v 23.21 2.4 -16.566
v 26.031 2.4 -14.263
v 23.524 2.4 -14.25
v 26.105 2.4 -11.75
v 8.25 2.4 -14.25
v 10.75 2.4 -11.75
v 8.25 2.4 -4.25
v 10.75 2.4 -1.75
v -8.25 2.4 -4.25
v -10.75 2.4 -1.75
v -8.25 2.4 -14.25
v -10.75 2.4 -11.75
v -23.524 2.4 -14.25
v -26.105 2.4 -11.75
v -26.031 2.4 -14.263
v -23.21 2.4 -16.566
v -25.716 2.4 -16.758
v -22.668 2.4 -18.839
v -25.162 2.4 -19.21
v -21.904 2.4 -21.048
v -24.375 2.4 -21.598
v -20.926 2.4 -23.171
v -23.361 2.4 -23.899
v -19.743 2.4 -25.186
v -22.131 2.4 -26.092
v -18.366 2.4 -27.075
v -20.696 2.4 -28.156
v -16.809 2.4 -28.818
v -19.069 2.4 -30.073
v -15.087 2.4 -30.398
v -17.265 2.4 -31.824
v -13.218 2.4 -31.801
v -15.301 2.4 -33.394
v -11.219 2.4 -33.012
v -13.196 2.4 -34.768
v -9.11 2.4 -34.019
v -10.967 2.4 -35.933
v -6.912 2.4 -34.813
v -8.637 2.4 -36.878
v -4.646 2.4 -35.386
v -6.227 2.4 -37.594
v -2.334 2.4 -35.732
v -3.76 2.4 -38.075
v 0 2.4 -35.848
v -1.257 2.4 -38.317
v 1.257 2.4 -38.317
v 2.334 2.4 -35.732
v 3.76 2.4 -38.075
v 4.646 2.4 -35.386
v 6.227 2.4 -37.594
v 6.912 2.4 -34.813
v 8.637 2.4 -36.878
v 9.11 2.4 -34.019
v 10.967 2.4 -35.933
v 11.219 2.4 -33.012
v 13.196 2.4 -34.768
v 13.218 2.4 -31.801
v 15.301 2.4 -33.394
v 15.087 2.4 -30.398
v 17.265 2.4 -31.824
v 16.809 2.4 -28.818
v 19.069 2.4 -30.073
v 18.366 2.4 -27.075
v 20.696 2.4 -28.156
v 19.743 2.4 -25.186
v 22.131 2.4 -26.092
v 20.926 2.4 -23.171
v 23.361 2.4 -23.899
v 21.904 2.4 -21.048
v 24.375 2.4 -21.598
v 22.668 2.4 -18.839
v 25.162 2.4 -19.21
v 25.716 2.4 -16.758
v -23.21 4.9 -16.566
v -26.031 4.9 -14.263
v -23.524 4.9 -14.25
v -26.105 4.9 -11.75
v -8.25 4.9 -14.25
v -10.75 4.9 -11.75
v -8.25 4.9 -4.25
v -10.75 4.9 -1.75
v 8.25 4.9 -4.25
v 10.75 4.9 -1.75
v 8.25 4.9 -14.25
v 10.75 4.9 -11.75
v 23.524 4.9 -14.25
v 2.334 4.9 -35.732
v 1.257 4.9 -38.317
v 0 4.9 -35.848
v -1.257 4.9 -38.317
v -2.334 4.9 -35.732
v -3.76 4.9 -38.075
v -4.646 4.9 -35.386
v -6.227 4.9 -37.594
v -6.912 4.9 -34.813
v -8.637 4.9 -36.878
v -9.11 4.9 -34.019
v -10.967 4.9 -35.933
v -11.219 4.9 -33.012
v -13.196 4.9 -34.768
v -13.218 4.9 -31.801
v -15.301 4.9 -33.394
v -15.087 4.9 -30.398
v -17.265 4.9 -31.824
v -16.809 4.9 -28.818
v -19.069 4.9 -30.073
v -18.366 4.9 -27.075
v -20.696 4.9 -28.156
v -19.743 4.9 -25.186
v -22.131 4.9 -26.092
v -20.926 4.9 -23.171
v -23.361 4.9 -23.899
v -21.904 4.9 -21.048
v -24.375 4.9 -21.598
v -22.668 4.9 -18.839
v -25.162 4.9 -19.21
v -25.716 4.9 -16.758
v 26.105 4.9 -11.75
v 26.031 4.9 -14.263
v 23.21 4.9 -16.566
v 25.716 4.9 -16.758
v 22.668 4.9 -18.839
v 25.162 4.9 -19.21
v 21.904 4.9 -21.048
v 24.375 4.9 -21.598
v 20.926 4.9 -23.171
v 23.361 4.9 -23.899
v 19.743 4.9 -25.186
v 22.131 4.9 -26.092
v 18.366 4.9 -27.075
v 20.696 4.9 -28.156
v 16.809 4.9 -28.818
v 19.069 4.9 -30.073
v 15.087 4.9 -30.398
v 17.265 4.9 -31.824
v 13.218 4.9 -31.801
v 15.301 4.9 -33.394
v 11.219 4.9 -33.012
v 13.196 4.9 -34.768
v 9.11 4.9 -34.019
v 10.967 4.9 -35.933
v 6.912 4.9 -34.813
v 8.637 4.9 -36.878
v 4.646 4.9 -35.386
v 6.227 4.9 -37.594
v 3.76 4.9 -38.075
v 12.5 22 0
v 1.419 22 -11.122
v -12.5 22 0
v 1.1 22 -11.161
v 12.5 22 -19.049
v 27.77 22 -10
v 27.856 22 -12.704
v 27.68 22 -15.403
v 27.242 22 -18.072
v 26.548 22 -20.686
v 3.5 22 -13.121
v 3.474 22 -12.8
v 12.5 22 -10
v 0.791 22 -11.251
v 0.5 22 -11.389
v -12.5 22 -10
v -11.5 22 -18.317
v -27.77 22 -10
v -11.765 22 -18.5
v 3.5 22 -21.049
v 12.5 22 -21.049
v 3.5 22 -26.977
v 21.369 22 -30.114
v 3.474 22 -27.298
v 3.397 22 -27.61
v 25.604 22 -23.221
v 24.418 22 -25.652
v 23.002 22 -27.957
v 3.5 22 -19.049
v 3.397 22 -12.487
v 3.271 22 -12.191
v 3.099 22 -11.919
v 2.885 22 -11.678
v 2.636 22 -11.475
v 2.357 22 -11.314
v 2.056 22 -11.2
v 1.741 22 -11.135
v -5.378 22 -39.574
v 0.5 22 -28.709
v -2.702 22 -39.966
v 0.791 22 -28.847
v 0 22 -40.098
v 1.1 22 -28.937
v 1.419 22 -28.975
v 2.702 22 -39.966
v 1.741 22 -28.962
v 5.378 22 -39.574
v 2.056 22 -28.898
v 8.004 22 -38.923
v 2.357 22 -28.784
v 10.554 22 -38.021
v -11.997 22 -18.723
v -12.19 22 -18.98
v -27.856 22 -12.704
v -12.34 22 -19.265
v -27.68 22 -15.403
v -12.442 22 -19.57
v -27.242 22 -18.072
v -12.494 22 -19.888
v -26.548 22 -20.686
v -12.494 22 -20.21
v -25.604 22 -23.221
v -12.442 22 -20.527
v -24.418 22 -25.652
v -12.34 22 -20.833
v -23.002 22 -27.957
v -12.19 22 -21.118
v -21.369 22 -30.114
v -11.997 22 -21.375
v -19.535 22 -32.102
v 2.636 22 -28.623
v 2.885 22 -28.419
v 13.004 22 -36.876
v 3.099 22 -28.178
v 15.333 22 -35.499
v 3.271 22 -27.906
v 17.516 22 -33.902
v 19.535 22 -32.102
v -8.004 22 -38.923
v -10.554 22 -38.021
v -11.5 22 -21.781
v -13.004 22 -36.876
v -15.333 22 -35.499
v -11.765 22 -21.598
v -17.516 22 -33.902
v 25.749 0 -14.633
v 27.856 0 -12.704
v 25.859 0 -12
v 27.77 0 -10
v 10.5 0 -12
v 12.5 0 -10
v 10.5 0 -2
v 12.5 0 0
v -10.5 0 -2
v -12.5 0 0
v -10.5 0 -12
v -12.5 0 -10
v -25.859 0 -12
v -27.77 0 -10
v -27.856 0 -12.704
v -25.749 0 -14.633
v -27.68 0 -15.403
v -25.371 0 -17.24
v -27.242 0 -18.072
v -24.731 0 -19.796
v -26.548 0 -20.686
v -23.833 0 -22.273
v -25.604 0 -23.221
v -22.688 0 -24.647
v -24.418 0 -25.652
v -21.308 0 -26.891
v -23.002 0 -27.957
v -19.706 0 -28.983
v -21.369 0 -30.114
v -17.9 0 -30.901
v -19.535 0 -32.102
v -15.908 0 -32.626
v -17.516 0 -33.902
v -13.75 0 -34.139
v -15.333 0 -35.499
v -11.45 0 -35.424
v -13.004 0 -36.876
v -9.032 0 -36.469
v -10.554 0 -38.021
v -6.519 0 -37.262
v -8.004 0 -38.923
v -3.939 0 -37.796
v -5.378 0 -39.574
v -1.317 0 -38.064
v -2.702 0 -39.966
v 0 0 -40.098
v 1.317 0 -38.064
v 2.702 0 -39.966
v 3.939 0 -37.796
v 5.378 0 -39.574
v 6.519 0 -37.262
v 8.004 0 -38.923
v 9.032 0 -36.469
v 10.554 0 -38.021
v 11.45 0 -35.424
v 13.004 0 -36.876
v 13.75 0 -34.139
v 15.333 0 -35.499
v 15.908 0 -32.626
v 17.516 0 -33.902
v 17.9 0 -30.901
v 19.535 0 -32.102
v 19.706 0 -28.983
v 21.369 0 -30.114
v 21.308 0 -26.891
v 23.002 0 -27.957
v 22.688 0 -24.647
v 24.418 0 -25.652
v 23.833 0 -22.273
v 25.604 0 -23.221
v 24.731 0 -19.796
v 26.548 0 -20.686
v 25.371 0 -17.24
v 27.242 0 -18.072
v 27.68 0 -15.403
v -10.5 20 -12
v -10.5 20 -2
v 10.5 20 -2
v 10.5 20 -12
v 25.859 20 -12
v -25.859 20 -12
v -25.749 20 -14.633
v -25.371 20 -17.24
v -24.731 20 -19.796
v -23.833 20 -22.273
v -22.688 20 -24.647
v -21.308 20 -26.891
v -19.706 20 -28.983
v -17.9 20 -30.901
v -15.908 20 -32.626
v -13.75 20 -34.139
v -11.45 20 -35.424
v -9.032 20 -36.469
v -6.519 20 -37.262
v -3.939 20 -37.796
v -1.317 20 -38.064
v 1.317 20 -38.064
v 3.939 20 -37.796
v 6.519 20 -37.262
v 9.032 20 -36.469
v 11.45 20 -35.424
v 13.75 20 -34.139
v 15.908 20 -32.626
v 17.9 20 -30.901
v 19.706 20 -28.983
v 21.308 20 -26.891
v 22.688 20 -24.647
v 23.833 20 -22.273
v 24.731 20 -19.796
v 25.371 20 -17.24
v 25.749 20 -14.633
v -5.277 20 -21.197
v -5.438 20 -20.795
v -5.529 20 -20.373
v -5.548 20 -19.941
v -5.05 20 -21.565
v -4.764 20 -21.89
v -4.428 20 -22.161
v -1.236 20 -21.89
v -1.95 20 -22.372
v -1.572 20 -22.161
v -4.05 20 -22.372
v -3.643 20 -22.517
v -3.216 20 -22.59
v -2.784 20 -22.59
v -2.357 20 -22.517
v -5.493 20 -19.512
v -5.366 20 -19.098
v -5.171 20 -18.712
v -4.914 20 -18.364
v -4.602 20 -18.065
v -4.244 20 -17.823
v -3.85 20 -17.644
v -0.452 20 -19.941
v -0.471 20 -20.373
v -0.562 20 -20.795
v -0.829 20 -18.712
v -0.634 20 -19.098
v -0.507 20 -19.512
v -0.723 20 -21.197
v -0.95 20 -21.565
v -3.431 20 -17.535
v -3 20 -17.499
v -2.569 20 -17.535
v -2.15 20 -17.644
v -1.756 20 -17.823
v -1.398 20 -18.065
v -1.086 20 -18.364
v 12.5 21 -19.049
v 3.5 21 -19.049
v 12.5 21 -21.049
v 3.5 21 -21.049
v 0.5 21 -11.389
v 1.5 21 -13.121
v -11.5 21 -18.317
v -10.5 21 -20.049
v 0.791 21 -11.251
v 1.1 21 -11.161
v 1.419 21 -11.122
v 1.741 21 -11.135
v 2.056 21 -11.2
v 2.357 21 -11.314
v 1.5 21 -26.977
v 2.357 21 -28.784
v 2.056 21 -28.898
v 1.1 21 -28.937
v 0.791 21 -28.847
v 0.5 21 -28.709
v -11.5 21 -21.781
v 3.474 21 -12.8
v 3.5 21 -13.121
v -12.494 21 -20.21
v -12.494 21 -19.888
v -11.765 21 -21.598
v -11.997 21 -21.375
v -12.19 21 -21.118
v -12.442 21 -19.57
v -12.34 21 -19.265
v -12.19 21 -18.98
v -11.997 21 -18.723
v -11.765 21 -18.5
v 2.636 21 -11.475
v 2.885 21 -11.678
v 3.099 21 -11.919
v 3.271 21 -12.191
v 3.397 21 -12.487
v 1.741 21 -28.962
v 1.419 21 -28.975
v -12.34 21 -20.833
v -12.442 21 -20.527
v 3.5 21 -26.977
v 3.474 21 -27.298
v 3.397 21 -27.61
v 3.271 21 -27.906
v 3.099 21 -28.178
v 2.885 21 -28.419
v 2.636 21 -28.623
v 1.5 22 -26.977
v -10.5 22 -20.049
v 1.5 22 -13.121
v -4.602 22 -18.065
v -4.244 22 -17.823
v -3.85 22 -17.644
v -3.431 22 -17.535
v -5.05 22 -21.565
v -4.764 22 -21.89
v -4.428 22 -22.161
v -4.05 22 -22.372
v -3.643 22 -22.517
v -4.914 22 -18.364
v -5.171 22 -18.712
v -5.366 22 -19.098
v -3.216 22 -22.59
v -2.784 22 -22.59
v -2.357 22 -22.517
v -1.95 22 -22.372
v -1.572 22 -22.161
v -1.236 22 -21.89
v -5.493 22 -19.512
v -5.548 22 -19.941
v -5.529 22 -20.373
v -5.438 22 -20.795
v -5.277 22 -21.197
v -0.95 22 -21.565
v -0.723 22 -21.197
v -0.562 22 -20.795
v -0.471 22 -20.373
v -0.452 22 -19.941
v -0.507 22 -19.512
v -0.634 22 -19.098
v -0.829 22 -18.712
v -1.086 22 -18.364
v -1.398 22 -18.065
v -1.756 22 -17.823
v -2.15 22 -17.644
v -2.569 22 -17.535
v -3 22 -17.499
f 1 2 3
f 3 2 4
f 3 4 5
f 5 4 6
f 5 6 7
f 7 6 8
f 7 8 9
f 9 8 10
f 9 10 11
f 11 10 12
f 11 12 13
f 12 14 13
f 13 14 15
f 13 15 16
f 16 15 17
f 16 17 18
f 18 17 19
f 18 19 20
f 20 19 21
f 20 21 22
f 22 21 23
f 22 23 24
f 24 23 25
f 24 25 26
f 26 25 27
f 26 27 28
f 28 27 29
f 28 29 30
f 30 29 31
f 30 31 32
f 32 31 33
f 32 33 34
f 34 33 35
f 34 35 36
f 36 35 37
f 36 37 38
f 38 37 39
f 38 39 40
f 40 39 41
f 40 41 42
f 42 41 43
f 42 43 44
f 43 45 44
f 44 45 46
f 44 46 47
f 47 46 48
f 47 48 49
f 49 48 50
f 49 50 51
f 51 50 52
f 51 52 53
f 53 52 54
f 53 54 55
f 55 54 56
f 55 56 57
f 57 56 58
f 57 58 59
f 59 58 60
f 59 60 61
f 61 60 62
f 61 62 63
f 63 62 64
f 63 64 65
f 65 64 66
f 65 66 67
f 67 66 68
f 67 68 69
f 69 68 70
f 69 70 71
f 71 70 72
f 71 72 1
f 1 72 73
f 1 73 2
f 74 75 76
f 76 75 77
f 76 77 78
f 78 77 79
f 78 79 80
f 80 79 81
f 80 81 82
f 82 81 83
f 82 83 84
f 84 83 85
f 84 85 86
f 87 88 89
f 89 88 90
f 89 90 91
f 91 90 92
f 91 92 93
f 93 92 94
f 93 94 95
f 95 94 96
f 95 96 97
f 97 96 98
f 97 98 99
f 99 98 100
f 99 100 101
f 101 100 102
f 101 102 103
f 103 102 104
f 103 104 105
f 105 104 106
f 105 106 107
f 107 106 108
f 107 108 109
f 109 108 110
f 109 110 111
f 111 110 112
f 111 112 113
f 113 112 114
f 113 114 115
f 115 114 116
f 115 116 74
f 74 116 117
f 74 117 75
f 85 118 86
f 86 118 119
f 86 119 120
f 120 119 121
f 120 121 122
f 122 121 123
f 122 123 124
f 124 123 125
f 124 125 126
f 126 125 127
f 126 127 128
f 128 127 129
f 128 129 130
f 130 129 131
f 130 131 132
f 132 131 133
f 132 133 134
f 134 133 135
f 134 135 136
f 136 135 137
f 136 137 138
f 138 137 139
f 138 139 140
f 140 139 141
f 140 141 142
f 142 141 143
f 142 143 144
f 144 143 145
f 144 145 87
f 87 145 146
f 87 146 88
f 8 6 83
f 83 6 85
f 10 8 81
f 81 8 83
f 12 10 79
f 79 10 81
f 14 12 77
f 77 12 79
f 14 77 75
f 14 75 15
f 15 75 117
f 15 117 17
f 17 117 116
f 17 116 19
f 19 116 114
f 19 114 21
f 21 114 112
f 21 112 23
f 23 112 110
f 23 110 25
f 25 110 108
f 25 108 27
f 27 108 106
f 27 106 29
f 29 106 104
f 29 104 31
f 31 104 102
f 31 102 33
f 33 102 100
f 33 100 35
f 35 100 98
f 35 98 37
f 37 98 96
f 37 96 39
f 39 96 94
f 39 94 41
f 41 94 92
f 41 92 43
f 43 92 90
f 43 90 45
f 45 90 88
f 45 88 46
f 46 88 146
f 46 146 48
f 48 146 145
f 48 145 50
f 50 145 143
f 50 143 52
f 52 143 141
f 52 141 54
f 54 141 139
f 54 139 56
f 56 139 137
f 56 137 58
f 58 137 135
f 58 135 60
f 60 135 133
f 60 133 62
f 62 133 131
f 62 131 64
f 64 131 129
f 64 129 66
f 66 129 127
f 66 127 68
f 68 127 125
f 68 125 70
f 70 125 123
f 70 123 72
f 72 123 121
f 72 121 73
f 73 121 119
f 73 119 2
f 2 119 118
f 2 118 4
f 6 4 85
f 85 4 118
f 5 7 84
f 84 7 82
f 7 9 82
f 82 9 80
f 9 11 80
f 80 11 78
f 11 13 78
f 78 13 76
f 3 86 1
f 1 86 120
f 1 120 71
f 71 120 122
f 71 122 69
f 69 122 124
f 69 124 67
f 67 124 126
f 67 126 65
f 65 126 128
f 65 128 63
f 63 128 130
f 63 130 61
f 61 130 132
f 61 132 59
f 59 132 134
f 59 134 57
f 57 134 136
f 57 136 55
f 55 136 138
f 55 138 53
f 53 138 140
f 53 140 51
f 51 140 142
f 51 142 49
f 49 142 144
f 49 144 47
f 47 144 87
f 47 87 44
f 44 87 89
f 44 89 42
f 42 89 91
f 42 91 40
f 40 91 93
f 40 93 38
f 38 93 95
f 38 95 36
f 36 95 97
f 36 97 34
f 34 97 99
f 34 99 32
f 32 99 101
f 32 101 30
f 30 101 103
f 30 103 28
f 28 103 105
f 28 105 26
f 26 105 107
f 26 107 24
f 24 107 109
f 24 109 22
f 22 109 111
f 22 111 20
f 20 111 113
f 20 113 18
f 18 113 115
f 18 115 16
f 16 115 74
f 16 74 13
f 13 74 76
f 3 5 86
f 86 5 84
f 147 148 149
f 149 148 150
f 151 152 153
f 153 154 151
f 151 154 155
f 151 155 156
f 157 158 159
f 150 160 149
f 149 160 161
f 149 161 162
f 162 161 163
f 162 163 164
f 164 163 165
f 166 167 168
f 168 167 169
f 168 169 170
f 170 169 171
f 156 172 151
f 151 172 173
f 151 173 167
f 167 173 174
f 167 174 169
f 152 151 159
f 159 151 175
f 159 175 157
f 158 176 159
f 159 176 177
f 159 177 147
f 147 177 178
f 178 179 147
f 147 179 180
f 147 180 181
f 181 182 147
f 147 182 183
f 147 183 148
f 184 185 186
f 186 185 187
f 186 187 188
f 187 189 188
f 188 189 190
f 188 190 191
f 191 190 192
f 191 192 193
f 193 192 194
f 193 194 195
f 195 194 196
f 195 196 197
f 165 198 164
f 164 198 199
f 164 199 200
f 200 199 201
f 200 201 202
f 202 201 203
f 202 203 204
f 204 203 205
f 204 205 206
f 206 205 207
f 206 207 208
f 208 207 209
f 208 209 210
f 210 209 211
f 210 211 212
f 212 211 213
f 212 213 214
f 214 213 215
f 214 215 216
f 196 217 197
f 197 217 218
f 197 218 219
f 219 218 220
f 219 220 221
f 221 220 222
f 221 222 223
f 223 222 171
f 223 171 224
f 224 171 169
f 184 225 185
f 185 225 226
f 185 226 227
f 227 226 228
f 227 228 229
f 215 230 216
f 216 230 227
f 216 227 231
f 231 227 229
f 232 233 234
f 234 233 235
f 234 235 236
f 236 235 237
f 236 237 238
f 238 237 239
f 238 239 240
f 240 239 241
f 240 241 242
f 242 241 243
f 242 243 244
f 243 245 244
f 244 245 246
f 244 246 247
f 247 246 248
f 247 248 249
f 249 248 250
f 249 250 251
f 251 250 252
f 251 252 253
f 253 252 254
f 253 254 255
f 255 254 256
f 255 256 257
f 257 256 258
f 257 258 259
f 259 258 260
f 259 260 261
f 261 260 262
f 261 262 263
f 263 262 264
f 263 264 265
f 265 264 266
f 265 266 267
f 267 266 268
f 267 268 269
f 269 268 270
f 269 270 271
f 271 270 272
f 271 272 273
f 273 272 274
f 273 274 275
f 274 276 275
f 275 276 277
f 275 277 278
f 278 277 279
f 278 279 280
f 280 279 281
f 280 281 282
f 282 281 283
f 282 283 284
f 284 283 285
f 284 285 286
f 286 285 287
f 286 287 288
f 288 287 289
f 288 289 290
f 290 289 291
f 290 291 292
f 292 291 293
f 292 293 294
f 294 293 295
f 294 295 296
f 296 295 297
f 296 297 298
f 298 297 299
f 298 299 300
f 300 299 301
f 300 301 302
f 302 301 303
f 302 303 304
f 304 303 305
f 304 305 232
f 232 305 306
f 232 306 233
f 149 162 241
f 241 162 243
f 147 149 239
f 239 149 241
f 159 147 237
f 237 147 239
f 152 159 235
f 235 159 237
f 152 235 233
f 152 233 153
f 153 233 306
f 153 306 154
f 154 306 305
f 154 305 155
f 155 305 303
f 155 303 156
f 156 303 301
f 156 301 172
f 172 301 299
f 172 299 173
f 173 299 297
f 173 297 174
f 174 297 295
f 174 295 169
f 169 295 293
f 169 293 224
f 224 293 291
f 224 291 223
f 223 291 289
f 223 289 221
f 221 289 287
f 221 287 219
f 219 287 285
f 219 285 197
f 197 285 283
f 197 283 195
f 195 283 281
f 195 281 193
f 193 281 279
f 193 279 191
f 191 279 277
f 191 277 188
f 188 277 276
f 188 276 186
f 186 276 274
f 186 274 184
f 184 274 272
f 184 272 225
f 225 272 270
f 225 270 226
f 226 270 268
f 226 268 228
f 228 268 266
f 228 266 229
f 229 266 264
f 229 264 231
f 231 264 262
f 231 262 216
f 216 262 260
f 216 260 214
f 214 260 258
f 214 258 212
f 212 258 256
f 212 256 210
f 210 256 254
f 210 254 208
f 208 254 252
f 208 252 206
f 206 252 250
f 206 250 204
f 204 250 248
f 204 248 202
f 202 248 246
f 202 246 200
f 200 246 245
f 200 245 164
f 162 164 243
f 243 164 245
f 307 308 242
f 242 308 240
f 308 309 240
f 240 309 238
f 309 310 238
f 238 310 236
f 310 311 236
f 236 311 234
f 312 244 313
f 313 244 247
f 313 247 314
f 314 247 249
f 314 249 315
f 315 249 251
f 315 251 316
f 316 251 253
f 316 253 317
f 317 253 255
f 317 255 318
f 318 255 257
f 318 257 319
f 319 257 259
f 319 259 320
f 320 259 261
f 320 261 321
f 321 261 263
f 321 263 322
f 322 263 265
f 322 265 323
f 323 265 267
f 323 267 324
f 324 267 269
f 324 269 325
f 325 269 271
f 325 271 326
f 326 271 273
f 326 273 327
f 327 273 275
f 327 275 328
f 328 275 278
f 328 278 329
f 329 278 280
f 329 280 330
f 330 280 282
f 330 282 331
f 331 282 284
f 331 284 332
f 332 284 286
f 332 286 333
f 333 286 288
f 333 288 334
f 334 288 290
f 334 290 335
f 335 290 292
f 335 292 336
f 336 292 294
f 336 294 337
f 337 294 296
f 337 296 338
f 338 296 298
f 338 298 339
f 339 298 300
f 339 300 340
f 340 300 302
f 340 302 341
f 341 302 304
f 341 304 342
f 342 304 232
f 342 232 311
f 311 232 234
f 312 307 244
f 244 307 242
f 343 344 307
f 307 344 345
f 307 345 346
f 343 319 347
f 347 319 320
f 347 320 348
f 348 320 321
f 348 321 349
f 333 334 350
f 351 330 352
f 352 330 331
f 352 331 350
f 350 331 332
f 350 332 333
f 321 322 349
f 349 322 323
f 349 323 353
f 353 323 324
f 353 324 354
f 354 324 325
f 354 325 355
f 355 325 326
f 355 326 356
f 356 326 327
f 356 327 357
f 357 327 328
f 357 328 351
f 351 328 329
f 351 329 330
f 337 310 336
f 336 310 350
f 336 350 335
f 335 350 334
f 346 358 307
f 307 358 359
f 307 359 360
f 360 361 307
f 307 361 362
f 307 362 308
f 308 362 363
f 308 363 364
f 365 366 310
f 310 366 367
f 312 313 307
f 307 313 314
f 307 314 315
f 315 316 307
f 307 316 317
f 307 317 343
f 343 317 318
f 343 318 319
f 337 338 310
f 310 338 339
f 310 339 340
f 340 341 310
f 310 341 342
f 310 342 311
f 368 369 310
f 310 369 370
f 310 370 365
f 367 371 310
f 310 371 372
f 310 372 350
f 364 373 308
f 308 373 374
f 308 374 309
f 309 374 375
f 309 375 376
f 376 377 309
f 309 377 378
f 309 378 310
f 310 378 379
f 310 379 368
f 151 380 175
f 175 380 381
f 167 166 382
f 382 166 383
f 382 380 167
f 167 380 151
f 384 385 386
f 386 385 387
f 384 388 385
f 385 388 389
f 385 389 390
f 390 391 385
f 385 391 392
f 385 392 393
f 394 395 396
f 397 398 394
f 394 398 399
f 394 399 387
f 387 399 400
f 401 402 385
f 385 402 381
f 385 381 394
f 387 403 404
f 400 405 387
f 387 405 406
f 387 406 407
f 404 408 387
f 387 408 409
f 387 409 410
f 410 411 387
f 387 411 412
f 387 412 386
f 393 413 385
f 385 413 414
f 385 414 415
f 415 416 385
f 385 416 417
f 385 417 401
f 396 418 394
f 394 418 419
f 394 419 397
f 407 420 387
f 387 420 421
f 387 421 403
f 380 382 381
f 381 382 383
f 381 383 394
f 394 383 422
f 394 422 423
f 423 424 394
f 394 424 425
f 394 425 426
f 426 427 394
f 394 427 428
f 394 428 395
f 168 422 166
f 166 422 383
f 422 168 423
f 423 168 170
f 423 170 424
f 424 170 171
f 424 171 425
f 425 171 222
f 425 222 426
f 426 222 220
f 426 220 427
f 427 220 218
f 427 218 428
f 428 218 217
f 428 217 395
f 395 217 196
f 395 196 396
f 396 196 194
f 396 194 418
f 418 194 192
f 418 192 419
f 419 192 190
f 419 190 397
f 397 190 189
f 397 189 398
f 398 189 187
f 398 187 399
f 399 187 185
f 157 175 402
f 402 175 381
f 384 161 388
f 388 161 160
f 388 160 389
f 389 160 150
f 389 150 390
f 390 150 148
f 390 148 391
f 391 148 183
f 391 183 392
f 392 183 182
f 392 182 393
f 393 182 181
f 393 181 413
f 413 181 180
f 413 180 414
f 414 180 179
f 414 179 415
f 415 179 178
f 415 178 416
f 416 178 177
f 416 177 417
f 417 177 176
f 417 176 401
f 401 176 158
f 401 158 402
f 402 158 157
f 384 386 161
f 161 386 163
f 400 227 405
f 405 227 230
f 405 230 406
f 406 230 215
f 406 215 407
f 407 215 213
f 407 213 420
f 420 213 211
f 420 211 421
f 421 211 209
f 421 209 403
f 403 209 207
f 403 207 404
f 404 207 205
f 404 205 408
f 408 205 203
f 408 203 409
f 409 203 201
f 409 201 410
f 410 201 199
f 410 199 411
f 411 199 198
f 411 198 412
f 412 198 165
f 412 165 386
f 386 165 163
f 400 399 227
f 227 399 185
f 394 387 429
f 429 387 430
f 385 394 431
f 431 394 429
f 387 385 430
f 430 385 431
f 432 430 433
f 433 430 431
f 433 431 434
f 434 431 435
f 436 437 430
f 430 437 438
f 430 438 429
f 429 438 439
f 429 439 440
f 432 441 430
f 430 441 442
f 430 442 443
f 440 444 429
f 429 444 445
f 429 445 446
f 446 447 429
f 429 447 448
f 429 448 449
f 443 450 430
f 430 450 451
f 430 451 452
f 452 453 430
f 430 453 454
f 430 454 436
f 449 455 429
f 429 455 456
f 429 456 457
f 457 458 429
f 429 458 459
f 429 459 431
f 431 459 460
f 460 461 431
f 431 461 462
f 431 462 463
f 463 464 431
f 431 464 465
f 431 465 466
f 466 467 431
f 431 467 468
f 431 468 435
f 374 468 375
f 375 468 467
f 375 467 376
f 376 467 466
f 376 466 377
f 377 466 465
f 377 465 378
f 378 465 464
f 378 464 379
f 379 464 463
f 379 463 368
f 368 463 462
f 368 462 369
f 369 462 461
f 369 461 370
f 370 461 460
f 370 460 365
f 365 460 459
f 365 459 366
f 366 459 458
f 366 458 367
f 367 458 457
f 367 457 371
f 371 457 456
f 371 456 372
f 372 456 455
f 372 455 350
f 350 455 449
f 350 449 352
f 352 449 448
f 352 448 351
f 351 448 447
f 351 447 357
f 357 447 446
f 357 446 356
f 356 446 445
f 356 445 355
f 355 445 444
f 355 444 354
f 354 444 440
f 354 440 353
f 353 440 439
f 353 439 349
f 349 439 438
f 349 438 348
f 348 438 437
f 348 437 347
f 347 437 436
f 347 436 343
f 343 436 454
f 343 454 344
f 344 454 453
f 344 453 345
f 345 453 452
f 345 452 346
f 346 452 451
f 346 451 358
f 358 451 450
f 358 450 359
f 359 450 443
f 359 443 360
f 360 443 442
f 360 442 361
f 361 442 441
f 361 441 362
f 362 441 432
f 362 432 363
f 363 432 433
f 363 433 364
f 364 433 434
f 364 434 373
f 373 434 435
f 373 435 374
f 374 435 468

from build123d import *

# Parameters (mm, degrees)
EXTRUIR_L_MINA1_DEPTH        = 20
SALIENTE_EXTRUIR1_DEPTH      = 2
EXTRUIR_L_MINA2_DEPTH        = 2.5
CORTAR_EXTRUIR_L_MINA1_START = -1
CORTAR_EXTRUIR_L_MINA1_DEPTH = 1
CROQUIS11_R                  = 2.55
CORTAR_EXTRUIR1_DEPTH        = 54.553658795


# Read off the part's stored shape, not the designer's step: Cortar-Extruir-Lámina1
with BuildPart() as part:
    # Croquis1 → Extruir-Lámina1 (new body)
    with BuildSketch(Plane(origin=(0, 0, 0), x_dir=(1, 0, 0), z_dir=(0, 1, 0))):
        with BuildLine():
            Line((-27.77, 10), (-12.5, 10))
            Line((-12.5, 10), (-12.5, 0))
            Line((-12.5, 0), (12.5, 0))
            Line((12.5, 0), (12.5, 10))
            Line((12.5, 10), (27.77, 10))
            ThreePointArc((27.77, 10), (0, 40.097565641), (-27.77, 10))
        make_face()
        with BuildLine():
            Line((-25.858908766, 12), (-10.5, 12))
            Line((-10.5, 12), (-10.5, 2))
            Line((-10.5, 2), (10.5, 2))
            Line((10.5, 2), (10.5, 12))
            Line((10.5, 12), (25.858908766, 12))
            ThreePointArc((25.858908766, 12), (0, 38.097565641), (-25.858908766, 12))
        make_face(mode=Mode.SUBTRACT)
    extrude(amount=EXTRUIR_L_MINA1_DEPTH)

    # Croquis2 → Saliente-Extruir1 (add)
    with BuildSketch(Plane(origin=(0, 20, 0), x_dir=(1, 0, 0), z_dir=(0, 1, 0))):
        with BuildLine():
            Line((12.5, 10), (27.77, 10))
            ThreePointArc((27.77, 10), (0, 40.097565641), (-27.77, 10))
            Line((-27.77, 10), (-12.5, 10))
            Line((-12.5, 10), (-12.5, 0))
            Line((-12.5, 0), (12.5, 0))
            Line((12.5, 0), (12.5, 10))
        make_face()
    extrude(amount=SALIENTE_EXTRUIR1_DEPTH)

    # Cortar-Extruir-Lámina1 outline → Cortar-Extruir-Lámina1 (cut)
    with BuildSketch(Plane(origin=(0, 22, 0), x_dir=(1, 0, 0), z_dir=(0, 1, 0)).offset(CORTAR_EXTRUIR_L_MINA1_START)):
        with BuildLine():
            Line((3.5, 13.12057959), (3.5, 19.048782821))
            Line((3.5, 19.048782821), (12.5, 19.048782821))
            Line((12.5, 19.048782821), (12.5, 21.048782821))
            Line((12.5, 21.048782821), (3.5, 21.048782821))
            Line((3.5, 21.048782821), (3.5, 26.976986051))
            ThreePointArc((3.5, 26.976986051), (2.5, 28.709036859), (0.5, 28.709036859))
            Line((0.5, 28.709036859), (-11.5, 21.780833628))
            ThreePointArc((-11.5, 21.780833628), (-12.5, 20.04878282), (-11.5, 18.316732013))
            Line((-11.5, 18.316732013), (0.5, 11.388528783))
            ThreePointArc((0.5, 11.388528783), (2.5, 11.388528783), (3.5, 13.12057959))
        make_face()
        Polygon((-10.5, 20.048782821), (1.5, 26.976986051), (1.5, 13.12057959), align=None, mode=Mode.SUBTRACT)
    extrude(amount=CORTAR_EXTRUIR_L_MINA1_DEPTH, mode=Mode.SUBTRACT)

    # Croquis11 → Cortar-Extruir1 (cut, through all)
    with BuildSketch(Plane(origin=(0, 22, 0), x_dir=(1, 0, 0), z_dir=(0, 1, 0))):
        with Locations(Location((-3, 20.048782821, 0), (0, 0, 270))):
            Circle(CROQUIS11_R)
    extrude(amount=-CORTAR_EXTRUIR1_DEPTH, mode=Mode.SUBTRACT)


with BuildPart() as body_2:
    # Croquis9 → Extruir-Lámina2 (new body)
    with BuildSketch(Plane(origin=(0, 4.9, 0), x_dir=(-1, 0, 0), z_dir=(0, -1, 0))):
        with BuildLine():
            Line((-26.105447319, 11.75), (-10.75, 11.75))
            Line((-10.75, 11.75), (-10.75, 1.75))
            Line((-10.75, 1.75), (10.75, 1.75))
            Line((10.75, 1.75), (10.75, 11.75))
            Line((10.75, 11.75), (26.105447319, 11.75))
            ThreePointArc((26.105447319, 11.75), (0, 38.347565641), (-26.105447319, 11.75))
        make_face()
        with BuildLine():
            Line((-23.524077197, 14.25), (-8.25, 14.25))
            Line((-8.25, 14.25), (-8.25, 4.25))
            Line((-8.25, 4.25), (8.25, 4.25))
            Line((8.25, 4.25), (8.25, 14.25))
            Line((8.25, 14.25), (23.524077197, 14.25))
            ThreePointArc((23.524077197, 14.25), (0, 35.847565641), (-23.524077197, 14.25))
        make_face(mode=Mode.SUBTRACT)
    extrude(amount=EXTRUIR_L_MINA2_DEPTH)


solid = Compound([part.part, body_2.part])
